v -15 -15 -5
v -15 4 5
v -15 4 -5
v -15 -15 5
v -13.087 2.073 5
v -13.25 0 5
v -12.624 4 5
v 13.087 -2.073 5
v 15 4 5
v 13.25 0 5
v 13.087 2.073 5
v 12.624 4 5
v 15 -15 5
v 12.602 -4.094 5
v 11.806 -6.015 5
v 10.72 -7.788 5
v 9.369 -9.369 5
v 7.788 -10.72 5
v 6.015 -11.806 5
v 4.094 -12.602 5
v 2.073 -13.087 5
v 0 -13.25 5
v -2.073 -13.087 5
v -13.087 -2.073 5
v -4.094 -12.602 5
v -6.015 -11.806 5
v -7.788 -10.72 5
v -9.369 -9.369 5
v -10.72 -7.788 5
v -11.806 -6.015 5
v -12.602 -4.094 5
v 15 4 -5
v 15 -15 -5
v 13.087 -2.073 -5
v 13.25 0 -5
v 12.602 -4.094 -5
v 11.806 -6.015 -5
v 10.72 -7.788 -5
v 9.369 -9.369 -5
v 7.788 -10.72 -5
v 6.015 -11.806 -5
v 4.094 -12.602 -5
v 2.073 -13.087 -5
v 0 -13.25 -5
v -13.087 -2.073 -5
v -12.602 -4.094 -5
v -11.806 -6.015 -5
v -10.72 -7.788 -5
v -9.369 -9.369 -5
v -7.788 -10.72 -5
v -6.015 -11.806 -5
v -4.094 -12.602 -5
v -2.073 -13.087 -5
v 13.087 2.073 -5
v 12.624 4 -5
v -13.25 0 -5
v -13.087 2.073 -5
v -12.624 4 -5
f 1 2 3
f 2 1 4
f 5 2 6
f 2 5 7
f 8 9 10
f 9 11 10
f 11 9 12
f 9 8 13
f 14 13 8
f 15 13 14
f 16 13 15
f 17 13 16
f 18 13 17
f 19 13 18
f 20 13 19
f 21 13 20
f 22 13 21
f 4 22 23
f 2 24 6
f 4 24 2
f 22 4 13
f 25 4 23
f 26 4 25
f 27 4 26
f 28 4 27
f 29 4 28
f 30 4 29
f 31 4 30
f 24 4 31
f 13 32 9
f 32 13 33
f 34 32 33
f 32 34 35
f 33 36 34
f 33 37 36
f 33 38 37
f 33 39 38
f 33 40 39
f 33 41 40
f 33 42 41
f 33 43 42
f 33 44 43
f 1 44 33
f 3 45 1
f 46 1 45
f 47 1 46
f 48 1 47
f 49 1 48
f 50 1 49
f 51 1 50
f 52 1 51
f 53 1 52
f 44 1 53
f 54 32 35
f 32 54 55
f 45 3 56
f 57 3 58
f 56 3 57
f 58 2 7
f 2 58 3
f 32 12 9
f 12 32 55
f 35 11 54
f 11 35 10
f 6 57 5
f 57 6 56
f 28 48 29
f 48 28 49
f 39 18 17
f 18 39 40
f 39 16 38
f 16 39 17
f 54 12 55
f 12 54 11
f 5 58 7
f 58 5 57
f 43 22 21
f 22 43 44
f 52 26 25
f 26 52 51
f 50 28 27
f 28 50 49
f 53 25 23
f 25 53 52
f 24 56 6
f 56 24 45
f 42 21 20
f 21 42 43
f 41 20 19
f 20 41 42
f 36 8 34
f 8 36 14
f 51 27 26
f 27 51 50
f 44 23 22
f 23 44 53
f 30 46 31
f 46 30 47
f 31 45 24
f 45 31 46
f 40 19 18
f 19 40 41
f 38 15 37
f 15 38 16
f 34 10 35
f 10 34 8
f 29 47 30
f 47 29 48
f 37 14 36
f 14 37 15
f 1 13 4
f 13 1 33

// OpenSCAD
$fn = 40;
difference() {
cube([30,30,10], center = true);
    union() {
        translate ([0,14,0]) cube([30,20,10], center =true);
        translate ([0,0,-5]) cylinder(d=26.5,h=10);
    }
}
